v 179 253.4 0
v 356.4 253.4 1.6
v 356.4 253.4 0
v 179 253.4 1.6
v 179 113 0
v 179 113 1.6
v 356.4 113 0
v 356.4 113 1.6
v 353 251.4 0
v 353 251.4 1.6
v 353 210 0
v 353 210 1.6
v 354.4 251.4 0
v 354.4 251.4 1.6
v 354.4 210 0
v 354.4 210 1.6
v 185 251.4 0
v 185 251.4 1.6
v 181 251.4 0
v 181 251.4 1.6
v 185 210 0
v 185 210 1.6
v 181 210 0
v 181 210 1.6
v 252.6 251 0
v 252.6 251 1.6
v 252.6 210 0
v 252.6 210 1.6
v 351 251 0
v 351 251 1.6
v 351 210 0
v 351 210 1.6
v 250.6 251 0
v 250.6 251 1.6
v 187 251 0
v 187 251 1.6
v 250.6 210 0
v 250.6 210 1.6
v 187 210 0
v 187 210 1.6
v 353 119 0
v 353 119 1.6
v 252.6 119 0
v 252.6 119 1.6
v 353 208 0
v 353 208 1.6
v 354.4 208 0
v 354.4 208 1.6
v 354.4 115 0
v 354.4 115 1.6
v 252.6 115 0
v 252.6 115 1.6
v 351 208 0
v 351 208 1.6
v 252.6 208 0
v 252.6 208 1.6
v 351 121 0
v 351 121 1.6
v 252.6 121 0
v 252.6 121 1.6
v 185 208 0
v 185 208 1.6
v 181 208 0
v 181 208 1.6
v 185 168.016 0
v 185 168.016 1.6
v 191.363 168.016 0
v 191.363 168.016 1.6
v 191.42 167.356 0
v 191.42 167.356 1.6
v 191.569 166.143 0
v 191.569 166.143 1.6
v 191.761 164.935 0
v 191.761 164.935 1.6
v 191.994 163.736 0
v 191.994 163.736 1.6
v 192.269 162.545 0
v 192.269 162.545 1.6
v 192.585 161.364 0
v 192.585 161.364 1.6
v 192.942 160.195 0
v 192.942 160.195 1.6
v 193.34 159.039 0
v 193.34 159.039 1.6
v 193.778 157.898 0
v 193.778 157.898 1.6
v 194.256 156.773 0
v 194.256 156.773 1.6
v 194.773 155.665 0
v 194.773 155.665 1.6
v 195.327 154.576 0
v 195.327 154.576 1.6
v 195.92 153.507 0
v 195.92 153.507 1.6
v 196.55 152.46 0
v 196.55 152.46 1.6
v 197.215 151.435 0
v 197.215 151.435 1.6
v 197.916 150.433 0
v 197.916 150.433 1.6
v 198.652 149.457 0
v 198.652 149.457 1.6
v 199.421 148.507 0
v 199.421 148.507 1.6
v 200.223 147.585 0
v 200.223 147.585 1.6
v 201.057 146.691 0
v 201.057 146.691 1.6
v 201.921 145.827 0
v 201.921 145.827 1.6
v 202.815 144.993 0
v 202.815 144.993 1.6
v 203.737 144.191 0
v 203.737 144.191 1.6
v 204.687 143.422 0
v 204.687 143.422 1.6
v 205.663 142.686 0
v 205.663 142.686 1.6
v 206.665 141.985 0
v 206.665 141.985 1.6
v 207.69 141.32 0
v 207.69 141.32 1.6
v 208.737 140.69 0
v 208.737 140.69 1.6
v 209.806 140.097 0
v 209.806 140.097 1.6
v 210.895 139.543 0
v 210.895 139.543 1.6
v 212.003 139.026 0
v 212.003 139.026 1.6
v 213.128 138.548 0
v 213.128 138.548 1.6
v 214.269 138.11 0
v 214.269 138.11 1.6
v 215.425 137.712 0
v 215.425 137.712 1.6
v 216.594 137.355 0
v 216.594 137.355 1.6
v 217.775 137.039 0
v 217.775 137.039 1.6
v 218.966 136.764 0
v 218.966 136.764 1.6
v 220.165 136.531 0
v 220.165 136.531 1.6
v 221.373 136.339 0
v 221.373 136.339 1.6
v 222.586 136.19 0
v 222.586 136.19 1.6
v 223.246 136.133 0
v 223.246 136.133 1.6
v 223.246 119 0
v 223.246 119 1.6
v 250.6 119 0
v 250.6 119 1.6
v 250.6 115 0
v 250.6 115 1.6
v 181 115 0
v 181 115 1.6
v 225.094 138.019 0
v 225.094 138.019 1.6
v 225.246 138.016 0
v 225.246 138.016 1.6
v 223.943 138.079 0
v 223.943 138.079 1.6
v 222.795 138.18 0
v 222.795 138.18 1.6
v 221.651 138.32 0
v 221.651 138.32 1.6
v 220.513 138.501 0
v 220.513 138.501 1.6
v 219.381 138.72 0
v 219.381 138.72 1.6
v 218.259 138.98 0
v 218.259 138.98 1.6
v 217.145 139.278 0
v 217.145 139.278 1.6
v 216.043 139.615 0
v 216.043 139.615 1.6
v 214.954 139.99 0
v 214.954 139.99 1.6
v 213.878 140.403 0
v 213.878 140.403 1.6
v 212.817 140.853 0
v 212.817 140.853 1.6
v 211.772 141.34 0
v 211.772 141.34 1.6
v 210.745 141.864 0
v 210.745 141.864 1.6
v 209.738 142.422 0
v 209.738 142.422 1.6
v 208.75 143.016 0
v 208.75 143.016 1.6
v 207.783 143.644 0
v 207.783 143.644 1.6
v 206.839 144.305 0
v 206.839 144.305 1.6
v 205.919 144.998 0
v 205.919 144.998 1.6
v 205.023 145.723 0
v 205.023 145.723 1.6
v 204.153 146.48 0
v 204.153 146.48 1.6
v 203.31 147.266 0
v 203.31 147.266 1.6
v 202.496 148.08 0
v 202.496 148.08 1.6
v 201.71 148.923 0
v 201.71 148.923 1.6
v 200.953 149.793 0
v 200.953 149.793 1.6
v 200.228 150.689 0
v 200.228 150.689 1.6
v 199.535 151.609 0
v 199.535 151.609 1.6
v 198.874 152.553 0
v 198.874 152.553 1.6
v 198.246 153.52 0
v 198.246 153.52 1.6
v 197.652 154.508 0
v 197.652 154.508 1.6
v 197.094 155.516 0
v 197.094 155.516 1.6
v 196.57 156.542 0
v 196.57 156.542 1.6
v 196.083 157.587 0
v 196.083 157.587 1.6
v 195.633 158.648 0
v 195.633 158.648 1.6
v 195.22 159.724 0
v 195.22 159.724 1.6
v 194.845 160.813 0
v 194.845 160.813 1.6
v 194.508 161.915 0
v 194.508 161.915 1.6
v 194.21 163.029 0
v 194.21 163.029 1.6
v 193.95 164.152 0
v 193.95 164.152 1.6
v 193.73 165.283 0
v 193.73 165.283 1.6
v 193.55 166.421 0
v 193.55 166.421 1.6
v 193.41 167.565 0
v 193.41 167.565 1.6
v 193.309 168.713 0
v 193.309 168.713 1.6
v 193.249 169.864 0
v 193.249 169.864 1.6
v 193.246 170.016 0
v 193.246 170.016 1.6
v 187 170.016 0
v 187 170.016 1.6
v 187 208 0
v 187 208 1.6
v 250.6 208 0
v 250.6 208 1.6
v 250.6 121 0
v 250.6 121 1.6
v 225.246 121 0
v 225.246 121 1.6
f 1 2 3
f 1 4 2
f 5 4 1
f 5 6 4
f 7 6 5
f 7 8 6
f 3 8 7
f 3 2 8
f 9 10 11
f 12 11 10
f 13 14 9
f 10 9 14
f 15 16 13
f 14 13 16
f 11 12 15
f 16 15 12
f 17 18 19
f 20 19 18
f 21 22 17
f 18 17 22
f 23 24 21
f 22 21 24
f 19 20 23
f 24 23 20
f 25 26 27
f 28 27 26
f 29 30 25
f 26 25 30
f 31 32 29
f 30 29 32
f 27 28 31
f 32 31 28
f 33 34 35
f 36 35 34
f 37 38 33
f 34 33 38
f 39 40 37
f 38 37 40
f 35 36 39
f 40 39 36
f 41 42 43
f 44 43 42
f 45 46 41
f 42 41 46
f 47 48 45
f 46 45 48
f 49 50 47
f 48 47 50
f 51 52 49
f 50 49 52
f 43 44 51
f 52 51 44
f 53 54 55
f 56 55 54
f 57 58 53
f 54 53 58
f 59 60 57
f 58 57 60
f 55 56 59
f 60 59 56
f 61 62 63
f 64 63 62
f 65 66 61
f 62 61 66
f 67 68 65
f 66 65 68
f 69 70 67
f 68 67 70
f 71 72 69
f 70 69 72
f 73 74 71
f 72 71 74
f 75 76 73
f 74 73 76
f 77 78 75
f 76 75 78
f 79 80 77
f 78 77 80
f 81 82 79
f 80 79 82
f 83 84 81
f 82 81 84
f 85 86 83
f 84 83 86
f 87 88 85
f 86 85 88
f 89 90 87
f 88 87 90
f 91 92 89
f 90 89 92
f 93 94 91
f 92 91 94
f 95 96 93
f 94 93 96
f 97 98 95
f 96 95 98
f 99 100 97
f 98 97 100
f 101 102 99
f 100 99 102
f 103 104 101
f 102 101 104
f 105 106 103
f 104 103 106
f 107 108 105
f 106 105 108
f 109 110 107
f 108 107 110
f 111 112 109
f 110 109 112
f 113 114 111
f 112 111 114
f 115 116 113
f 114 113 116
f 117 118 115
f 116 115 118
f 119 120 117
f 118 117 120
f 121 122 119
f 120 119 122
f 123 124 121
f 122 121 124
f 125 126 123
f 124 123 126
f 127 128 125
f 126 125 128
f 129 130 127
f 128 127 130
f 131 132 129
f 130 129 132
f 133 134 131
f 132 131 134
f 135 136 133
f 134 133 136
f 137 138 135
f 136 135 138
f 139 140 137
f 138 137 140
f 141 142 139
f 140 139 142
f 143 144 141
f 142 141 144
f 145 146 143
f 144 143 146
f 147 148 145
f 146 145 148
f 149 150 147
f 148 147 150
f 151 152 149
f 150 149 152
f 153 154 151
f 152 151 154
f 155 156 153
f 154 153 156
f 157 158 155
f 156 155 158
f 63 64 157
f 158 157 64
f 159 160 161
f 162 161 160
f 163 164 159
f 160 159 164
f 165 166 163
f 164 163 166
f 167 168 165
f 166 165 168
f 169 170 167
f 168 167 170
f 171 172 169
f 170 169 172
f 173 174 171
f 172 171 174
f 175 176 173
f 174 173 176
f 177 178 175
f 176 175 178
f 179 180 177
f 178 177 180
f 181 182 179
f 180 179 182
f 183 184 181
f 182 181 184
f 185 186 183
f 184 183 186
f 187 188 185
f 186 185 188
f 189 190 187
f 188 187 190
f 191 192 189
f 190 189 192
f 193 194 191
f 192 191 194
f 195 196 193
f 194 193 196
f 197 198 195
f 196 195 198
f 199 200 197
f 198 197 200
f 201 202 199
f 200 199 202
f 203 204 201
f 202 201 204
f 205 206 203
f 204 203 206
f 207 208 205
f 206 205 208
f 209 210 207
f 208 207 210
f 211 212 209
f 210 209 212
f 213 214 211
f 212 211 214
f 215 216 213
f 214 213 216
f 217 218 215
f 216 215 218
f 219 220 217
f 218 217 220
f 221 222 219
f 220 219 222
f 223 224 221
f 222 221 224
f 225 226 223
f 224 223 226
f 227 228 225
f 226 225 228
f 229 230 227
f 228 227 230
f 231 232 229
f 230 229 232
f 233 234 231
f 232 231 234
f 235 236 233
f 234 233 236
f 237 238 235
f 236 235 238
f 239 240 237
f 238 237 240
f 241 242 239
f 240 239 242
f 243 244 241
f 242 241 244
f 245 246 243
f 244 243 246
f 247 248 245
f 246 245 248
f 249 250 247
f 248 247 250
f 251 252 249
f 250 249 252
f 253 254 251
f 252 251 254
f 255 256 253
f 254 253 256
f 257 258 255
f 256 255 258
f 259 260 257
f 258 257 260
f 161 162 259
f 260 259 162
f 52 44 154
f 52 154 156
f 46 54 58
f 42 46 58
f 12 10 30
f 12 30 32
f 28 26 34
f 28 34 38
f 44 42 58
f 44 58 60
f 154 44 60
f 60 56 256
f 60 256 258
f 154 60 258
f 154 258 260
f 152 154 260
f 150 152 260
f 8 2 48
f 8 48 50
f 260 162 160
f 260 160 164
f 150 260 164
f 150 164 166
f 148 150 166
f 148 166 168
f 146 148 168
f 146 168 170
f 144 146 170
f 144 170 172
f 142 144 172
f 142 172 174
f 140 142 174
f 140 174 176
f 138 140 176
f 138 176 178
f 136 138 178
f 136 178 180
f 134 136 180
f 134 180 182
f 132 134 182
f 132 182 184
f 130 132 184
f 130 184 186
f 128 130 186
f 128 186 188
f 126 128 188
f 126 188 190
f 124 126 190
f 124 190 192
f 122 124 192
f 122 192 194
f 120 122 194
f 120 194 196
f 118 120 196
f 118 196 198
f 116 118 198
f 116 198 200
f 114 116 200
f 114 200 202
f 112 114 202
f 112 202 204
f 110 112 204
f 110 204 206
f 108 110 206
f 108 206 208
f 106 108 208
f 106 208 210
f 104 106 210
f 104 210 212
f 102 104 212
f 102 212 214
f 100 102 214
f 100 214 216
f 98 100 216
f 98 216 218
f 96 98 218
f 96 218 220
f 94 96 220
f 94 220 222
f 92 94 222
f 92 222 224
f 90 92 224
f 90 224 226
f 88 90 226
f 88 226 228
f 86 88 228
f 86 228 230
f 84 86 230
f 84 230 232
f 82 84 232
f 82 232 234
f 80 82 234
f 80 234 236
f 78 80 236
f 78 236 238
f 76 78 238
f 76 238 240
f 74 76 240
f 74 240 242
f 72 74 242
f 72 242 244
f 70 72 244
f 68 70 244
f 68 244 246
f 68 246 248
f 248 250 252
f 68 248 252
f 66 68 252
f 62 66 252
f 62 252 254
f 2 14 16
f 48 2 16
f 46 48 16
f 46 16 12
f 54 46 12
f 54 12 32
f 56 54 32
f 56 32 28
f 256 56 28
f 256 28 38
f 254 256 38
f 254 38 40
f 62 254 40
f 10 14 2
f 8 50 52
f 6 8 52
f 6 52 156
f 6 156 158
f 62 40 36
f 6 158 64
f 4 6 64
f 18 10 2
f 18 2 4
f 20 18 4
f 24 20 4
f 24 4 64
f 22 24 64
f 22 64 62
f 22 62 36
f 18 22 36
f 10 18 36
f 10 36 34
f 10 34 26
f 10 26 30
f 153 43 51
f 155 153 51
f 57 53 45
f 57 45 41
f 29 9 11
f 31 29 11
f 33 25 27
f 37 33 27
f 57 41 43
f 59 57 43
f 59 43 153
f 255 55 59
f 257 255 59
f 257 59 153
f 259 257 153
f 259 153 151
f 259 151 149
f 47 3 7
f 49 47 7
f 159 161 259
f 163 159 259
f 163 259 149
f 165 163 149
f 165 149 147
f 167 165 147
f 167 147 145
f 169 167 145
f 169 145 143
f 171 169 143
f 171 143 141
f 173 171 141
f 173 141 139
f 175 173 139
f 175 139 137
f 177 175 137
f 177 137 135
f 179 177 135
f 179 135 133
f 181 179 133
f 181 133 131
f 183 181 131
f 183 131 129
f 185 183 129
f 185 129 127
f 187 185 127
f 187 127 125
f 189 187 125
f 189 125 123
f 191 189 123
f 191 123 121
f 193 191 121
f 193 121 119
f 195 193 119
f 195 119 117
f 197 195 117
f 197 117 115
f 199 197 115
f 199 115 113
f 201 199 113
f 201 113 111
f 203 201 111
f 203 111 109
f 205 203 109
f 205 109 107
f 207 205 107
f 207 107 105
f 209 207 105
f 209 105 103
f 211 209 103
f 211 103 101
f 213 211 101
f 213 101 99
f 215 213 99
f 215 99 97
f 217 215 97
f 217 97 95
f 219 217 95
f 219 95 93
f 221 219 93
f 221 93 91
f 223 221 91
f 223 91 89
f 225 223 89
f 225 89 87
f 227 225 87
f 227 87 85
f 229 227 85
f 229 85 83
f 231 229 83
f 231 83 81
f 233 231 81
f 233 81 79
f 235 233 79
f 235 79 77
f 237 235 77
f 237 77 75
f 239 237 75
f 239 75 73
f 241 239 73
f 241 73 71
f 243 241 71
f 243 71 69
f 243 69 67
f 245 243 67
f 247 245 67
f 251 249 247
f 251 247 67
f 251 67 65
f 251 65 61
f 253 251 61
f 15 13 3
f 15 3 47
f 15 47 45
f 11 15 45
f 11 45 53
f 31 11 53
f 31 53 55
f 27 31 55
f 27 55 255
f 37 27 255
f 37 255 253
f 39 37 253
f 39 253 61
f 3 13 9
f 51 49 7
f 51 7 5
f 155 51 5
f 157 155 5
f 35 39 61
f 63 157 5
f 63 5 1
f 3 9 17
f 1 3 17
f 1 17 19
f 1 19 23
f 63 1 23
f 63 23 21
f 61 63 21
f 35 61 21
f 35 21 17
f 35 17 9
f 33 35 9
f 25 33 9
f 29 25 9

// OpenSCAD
// Flat template of the cooler corner: cooler-top outline, cooler outline + gap, board edges. Lay it over the hardware.
include <lib.scad>
fit_check();
